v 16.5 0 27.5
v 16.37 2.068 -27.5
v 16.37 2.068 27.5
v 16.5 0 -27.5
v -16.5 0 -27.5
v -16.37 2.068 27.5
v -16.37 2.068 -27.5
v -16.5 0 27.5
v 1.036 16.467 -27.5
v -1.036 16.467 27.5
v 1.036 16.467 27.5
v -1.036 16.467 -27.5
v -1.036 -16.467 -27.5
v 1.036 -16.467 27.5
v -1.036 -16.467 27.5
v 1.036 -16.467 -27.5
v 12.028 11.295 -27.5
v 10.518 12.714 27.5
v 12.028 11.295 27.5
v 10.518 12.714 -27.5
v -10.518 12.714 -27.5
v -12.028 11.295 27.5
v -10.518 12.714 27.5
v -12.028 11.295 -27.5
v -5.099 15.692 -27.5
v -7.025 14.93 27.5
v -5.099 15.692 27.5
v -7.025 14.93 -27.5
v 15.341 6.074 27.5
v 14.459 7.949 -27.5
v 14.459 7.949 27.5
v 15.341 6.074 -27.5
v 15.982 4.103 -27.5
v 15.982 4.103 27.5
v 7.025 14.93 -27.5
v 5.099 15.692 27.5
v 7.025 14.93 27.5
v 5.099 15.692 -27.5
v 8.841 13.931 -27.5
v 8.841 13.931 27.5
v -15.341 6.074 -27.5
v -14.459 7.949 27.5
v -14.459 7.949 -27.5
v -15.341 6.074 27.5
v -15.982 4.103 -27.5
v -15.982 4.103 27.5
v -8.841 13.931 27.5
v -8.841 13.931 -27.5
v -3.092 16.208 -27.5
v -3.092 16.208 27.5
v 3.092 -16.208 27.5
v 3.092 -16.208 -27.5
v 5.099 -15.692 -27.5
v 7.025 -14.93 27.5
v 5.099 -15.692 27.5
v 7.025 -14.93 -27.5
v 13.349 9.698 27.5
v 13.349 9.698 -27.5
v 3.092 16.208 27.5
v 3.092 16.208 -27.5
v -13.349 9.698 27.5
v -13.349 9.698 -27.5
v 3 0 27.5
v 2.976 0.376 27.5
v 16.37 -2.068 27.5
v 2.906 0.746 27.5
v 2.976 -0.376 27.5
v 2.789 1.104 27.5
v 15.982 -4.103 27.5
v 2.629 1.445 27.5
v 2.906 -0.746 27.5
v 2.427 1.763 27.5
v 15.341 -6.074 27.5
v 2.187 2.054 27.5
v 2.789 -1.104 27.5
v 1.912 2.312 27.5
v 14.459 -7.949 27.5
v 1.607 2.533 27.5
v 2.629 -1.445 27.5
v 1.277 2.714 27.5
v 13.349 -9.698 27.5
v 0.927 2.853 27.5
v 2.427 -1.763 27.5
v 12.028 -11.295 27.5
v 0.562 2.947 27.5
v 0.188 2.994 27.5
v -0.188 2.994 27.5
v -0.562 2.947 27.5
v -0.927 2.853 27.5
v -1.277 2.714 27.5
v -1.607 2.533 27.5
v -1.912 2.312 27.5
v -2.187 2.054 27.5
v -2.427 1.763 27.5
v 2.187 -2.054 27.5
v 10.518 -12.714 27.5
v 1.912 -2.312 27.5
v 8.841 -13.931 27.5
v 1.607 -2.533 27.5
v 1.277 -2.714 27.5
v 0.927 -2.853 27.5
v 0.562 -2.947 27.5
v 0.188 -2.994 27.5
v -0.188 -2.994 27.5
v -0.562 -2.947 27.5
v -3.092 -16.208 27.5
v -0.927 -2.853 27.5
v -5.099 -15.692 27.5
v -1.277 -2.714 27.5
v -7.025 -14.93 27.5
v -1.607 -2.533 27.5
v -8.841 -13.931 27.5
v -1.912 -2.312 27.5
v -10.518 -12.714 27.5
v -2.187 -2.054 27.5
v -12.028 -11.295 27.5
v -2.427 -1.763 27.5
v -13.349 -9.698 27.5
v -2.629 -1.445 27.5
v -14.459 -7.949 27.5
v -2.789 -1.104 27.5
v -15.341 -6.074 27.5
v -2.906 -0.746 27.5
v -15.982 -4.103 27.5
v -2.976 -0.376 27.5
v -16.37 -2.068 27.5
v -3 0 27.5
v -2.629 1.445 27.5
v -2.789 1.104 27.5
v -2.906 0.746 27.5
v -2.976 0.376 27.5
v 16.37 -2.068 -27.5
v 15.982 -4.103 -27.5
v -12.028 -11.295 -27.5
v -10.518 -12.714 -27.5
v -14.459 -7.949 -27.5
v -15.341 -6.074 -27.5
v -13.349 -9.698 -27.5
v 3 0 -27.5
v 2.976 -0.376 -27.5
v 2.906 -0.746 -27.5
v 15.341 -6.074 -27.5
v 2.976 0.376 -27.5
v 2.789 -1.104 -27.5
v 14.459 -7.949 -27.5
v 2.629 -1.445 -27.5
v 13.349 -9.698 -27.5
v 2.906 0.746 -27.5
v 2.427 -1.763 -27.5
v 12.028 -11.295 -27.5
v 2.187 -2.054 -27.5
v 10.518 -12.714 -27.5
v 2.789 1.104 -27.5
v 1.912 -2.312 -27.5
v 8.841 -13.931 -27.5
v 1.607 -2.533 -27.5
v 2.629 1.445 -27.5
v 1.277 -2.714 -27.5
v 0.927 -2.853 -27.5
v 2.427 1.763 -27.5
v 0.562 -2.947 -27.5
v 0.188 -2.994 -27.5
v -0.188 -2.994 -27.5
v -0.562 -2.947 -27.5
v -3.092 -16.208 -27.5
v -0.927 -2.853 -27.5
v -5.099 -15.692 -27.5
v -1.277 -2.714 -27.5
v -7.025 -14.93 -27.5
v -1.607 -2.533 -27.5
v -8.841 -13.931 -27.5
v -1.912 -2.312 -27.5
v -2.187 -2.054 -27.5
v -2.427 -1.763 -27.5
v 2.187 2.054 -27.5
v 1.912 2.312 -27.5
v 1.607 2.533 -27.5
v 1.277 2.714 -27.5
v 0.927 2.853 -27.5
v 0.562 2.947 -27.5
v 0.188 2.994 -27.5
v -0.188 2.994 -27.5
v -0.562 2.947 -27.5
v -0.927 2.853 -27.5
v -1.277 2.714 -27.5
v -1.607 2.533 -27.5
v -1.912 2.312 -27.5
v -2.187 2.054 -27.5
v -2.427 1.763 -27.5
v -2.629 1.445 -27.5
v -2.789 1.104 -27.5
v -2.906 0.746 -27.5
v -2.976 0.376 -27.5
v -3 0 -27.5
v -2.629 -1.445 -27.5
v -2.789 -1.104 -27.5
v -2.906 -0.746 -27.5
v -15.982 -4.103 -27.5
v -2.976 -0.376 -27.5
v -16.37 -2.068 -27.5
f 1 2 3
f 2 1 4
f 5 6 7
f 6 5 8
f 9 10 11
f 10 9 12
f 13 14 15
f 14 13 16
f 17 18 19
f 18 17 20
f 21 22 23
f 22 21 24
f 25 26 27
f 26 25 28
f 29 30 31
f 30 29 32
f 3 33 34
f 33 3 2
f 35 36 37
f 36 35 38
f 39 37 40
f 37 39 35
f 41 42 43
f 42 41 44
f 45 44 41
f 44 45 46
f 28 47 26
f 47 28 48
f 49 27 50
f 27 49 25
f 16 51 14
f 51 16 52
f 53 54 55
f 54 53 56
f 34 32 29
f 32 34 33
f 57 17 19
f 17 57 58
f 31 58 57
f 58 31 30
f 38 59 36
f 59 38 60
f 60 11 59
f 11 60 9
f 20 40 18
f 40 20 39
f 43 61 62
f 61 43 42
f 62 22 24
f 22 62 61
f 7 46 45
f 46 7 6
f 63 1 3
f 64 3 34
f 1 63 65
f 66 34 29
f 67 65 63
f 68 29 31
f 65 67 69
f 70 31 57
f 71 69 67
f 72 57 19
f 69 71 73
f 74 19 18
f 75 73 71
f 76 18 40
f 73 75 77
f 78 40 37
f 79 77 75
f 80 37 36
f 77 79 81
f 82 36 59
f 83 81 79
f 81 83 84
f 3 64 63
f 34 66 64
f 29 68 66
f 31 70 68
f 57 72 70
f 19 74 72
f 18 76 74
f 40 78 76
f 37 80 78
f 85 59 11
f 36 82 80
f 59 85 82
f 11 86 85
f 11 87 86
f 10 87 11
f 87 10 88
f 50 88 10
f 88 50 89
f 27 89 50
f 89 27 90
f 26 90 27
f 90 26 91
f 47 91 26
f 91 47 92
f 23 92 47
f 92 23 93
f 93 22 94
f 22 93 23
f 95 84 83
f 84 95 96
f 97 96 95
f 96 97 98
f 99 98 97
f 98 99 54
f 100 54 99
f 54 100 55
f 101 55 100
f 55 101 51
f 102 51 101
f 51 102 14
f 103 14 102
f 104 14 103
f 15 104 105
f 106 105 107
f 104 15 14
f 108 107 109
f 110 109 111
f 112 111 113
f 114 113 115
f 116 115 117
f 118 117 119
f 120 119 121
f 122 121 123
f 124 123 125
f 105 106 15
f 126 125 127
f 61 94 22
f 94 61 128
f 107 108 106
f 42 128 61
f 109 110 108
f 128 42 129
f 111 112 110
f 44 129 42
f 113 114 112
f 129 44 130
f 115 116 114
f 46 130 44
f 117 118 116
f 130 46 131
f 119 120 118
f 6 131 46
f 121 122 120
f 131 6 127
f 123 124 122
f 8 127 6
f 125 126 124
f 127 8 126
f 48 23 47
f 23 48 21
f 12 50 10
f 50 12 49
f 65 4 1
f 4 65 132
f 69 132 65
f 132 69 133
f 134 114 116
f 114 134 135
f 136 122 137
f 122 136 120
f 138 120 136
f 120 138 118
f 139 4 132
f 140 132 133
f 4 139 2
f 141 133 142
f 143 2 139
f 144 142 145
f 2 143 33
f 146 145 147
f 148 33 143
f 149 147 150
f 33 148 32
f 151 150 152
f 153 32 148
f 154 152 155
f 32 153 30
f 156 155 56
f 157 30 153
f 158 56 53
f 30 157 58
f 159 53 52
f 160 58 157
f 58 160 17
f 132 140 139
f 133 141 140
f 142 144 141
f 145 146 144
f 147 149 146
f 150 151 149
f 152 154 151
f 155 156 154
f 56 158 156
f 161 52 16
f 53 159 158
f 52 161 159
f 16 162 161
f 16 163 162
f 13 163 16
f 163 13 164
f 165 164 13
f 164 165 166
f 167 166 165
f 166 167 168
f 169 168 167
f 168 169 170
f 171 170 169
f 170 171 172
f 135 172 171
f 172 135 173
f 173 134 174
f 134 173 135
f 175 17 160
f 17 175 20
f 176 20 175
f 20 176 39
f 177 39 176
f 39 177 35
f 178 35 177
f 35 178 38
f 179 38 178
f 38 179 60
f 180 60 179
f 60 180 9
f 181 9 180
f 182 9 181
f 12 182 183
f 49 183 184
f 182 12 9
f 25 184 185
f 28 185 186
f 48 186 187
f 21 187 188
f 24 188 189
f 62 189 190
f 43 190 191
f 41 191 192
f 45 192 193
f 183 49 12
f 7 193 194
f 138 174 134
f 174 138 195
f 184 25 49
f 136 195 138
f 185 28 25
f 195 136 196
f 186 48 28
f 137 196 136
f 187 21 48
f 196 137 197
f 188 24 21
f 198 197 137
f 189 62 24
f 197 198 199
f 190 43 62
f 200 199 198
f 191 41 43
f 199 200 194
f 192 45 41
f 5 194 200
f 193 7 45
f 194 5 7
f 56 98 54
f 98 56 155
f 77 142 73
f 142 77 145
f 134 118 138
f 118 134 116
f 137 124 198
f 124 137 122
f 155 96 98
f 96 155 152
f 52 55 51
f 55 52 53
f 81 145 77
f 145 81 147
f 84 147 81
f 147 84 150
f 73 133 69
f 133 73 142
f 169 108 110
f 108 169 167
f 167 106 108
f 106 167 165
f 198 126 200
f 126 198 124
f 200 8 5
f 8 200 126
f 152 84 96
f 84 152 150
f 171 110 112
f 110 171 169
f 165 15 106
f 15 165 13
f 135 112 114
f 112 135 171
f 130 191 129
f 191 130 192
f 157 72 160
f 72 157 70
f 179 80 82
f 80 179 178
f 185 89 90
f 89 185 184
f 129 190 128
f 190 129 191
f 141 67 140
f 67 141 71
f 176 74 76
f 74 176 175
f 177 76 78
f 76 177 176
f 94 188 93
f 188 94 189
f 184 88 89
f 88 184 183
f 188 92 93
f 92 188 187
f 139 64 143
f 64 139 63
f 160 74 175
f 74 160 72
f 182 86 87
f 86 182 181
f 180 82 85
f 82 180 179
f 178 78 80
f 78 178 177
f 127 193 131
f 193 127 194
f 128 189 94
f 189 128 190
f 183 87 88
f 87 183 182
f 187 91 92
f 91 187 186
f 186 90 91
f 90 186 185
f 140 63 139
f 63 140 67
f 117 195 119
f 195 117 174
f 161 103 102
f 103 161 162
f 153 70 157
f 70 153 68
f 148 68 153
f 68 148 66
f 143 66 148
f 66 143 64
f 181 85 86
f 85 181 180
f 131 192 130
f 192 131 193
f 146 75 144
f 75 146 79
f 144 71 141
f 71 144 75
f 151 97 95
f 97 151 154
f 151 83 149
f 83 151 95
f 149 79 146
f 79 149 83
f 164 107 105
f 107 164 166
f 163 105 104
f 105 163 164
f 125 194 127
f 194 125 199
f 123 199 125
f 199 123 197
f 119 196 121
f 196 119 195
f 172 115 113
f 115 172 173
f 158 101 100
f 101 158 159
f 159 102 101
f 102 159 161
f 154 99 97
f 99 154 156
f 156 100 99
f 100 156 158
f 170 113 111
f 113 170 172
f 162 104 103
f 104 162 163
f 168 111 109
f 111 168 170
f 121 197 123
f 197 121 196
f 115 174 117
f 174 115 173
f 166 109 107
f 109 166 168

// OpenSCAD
$fn = 50;


difference() {
	union() {
		translate(v = [0, 0, -27.5000000000]) {
			cylinder(h = 55, r = 16.5000000000);
		}
	}
	union() {
		translate(v = [0, 0, -100.0000000000]) {
			cylinder(h = 200, r = 3);
		}
	}
}
